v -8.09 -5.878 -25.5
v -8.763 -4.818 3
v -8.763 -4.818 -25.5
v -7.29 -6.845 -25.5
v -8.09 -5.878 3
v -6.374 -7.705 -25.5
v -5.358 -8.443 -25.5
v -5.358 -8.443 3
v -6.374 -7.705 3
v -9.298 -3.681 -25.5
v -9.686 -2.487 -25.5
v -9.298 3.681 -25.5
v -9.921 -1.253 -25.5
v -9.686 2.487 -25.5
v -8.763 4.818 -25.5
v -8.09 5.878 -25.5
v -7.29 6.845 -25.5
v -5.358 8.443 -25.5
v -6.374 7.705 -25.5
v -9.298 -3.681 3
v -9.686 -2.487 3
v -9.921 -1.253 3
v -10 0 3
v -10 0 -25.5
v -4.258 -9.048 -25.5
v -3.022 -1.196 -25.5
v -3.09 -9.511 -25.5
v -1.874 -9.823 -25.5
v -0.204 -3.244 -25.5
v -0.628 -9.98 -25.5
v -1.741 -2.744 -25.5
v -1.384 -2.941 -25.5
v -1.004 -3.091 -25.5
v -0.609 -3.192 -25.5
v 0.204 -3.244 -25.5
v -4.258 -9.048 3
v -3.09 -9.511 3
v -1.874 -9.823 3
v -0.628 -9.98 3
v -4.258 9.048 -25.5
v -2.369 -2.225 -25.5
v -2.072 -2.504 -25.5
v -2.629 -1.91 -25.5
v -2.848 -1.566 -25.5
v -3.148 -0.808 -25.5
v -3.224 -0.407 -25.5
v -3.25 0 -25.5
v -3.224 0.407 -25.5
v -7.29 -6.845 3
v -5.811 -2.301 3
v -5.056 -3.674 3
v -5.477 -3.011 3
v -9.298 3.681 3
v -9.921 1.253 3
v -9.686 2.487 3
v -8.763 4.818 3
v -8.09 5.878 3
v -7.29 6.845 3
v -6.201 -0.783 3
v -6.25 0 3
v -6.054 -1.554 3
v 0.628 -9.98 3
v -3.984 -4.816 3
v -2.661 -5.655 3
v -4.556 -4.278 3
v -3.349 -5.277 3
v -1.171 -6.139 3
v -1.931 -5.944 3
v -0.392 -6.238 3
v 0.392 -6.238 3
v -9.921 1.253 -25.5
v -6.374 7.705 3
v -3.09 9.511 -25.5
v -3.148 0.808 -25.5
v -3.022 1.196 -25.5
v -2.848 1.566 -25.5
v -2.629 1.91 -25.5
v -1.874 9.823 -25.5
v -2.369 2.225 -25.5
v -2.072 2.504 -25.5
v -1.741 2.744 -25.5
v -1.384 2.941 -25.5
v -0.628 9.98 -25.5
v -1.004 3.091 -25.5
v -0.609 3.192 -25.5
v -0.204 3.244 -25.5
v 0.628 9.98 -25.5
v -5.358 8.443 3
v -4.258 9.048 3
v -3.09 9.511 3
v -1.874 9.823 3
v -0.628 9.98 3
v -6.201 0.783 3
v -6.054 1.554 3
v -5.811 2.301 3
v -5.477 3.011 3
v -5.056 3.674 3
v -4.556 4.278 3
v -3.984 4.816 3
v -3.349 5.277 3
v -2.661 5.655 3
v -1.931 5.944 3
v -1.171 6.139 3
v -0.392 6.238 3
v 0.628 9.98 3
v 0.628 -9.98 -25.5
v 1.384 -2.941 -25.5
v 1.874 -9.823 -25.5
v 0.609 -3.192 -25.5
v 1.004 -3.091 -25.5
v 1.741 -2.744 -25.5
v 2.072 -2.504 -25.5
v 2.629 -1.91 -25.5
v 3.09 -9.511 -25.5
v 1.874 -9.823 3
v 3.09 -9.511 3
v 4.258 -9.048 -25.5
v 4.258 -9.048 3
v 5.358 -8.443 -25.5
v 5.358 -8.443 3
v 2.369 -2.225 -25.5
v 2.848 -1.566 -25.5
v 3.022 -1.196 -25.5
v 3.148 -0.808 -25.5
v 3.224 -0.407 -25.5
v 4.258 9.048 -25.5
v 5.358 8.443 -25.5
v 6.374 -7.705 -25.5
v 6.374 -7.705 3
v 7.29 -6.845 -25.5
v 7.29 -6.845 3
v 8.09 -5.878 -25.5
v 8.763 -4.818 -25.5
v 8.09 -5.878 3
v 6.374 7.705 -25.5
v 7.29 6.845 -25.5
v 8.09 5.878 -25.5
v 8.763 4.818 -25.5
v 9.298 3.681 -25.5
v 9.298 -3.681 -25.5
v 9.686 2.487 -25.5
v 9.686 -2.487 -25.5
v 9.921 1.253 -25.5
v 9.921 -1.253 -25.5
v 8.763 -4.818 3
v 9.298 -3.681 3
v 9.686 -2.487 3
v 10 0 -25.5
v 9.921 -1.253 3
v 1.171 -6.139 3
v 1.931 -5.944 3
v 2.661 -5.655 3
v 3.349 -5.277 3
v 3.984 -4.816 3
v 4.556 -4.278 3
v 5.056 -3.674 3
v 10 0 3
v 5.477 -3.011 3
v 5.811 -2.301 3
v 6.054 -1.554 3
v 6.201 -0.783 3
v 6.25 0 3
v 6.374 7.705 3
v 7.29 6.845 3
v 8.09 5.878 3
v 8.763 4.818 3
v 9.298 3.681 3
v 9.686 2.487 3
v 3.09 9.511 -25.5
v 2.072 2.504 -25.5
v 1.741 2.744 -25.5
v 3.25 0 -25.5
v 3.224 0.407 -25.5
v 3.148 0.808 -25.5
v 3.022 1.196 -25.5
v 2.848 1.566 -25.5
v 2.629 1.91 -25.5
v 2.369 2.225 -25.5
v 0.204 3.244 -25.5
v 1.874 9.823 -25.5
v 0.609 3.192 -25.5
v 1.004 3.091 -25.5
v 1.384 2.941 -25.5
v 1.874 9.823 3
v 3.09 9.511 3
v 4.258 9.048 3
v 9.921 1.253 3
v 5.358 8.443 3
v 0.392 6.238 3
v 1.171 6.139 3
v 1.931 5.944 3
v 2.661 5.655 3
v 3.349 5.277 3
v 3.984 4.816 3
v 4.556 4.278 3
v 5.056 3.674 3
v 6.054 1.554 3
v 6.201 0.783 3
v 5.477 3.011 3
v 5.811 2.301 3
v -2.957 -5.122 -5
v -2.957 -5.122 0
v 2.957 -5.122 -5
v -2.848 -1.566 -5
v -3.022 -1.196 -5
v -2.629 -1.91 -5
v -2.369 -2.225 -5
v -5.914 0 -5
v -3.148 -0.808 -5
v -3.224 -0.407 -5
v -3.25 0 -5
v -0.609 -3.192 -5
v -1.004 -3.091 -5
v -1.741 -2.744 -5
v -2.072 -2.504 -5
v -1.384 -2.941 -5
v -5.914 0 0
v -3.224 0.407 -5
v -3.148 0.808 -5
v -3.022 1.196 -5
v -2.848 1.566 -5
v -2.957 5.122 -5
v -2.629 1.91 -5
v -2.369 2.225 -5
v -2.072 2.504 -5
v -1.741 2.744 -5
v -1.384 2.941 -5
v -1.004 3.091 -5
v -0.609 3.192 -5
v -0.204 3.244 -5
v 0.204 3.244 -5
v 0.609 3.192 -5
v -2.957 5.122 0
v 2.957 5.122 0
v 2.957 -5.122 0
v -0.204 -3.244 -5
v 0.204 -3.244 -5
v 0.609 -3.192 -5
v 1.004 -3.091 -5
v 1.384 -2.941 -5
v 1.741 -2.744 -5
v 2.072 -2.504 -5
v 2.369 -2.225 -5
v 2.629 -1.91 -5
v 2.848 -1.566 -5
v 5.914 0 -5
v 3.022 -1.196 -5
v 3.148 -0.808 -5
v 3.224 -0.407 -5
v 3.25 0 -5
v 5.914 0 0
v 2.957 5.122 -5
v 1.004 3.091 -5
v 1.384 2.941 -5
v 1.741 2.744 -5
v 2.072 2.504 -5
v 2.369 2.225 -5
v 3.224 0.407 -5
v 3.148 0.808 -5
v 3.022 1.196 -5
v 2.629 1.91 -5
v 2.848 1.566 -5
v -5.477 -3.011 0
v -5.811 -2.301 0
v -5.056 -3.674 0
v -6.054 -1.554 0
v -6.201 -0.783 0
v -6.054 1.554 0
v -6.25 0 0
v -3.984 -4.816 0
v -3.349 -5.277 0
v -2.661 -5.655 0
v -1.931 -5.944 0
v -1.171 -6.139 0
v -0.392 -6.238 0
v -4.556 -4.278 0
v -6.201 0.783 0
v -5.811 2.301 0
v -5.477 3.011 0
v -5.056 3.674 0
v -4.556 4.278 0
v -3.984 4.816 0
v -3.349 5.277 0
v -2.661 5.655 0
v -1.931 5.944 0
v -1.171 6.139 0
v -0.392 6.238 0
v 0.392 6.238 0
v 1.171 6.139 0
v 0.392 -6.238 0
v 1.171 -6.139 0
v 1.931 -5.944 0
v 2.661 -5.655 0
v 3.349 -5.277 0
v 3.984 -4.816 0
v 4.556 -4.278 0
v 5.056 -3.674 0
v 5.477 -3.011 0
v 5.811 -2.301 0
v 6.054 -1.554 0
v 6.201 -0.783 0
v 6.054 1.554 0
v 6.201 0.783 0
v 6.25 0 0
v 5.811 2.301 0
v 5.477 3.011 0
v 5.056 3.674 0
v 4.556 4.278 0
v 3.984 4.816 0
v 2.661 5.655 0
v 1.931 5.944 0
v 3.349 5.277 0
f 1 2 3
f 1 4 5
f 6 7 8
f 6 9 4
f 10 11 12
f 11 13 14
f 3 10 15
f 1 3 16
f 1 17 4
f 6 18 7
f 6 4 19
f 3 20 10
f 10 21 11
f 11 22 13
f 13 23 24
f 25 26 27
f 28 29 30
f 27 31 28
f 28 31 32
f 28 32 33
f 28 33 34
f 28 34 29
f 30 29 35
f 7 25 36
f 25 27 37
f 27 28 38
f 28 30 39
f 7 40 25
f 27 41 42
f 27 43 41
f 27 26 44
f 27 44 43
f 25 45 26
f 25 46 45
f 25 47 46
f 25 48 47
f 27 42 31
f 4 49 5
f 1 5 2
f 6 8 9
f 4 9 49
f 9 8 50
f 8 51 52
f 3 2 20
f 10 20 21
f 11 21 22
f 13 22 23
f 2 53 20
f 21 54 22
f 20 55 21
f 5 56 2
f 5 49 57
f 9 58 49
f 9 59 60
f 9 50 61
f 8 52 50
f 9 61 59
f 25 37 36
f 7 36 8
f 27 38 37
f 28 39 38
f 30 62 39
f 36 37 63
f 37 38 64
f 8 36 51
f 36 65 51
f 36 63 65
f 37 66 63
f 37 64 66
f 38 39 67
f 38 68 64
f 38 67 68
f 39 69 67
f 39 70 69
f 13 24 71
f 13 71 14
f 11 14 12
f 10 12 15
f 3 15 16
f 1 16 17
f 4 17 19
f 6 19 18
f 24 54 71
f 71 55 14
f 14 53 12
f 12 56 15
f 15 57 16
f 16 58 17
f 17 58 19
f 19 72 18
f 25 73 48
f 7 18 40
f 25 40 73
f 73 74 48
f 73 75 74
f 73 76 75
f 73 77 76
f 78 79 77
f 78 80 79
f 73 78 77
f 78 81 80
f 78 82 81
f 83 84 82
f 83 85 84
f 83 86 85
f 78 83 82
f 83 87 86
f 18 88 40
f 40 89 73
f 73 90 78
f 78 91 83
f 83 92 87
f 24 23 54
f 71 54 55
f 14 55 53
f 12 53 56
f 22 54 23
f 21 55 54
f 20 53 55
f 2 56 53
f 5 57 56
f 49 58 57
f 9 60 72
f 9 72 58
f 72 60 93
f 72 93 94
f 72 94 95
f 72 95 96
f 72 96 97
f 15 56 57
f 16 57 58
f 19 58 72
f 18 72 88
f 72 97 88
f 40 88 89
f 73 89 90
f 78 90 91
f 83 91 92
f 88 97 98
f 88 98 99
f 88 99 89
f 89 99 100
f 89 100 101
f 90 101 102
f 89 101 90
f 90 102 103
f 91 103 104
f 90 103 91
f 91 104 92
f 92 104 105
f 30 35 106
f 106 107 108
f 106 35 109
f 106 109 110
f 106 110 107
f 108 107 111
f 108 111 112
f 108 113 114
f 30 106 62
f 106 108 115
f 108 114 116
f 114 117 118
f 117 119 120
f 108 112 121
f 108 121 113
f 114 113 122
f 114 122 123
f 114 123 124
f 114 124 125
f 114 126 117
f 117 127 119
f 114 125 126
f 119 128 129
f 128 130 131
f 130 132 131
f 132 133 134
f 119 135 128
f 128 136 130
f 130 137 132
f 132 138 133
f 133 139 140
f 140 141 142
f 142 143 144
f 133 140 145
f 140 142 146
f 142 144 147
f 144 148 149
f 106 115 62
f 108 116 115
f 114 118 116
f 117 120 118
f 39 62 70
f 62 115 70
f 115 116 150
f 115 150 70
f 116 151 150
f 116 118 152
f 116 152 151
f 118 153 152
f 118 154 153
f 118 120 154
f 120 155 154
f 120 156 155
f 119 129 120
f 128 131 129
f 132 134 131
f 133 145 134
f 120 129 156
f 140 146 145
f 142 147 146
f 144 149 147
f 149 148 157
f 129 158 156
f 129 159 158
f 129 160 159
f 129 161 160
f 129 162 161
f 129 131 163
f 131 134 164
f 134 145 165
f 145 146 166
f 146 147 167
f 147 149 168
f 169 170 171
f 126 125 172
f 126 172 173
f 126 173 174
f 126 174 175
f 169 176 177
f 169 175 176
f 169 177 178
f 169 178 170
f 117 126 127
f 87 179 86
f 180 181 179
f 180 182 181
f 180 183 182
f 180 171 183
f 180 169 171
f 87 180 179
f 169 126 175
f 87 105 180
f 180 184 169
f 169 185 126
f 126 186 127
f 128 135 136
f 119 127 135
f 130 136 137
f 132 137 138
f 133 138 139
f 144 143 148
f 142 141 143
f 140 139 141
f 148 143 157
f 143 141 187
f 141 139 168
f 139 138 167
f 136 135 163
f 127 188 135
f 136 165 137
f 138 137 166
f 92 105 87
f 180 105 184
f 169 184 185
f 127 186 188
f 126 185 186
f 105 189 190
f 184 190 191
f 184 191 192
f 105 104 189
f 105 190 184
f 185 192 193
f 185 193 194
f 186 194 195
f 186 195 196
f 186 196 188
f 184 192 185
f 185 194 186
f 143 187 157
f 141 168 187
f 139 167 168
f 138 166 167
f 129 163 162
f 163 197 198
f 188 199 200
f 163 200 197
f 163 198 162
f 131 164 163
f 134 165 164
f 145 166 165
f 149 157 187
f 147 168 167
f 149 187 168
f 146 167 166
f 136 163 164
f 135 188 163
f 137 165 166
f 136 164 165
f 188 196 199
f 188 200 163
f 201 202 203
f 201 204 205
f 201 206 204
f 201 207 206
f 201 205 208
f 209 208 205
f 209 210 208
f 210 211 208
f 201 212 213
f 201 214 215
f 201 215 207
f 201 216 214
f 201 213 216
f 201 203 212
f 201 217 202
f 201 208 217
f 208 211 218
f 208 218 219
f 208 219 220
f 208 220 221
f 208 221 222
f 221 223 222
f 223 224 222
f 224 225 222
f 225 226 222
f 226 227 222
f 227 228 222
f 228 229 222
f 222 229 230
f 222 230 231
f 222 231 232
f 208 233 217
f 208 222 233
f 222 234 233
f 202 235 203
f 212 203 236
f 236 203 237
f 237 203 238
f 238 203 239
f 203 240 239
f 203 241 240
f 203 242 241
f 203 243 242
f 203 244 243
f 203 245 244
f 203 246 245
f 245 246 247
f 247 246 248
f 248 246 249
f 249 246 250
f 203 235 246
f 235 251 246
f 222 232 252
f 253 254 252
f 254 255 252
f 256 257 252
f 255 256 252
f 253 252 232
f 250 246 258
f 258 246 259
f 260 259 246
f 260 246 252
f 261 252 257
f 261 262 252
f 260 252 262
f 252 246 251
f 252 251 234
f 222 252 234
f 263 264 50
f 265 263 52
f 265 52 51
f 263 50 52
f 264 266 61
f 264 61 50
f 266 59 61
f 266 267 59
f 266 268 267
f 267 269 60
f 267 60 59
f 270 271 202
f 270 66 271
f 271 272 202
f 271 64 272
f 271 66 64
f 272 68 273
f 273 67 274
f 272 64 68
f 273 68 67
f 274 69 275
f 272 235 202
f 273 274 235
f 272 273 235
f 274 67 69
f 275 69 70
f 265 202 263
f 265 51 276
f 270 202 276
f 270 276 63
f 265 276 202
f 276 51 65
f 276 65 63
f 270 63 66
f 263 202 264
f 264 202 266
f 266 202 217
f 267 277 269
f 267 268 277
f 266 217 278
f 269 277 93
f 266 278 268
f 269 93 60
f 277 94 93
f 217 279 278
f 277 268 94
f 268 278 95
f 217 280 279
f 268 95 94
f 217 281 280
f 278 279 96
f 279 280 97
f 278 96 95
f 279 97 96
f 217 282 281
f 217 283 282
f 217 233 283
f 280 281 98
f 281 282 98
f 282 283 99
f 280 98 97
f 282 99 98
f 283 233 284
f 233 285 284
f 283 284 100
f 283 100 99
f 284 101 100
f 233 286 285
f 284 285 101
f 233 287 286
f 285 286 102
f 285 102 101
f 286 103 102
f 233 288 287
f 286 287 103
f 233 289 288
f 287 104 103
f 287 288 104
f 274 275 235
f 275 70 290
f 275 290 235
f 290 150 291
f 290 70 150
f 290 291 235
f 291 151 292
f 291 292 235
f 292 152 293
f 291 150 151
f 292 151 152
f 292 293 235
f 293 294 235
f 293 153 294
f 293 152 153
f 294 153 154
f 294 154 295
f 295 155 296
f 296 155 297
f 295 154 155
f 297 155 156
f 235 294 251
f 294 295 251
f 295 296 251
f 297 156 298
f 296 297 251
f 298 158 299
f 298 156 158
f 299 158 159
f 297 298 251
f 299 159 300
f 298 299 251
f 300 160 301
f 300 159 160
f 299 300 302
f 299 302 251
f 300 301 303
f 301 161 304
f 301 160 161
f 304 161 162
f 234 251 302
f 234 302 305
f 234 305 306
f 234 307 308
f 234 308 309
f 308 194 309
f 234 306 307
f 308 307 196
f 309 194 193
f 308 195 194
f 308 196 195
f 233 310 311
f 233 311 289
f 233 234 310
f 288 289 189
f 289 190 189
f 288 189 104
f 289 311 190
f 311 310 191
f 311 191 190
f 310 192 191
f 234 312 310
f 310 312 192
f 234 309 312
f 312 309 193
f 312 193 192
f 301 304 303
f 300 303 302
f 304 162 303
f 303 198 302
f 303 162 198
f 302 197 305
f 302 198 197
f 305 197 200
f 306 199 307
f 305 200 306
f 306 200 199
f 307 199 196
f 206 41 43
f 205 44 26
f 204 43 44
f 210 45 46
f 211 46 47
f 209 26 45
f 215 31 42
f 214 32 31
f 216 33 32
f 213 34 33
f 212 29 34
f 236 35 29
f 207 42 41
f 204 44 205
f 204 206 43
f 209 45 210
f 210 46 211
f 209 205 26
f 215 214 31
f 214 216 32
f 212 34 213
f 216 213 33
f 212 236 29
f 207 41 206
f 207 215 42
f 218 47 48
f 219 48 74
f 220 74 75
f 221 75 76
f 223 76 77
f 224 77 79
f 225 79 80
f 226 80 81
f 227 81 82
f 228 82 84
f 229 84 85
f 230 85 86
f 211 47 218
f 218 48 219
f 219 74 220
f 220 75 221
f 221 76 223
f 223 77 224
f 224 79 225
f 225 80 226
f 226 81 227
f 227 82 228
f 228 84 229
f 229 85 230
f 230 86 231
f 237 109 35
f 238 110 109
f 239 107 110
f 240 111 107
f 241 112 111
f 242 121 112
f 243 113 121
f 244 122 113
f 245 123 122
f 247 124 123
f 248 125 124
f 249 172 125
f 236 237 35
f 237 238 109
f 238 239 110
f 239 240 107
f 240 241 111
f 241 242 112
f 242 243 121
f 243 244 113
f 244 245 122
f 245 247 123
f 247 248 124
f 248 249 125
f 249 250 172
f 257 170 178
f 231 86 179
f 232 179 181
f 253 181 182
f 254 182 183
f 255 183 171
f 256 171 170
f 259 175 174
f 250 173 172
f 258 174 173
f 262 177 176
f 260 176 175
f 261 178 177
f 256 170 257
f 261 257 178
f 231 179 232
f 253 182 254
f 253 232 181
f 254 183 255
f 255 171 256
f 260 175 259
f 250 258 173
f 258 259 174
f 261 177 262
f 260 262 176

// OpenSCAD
$fn = 50;

difference() {
	union() {
		translate(v = [0, 0, -25.5]) {
			cylinder(h = 28.5, r = 10.0);
		}
		#translate(v = [0, 0, -27.0]) {
			cylinder(h = 27, r = 2.875);
		}
	}
	union() {
		translate(v = [0, 0, 0]) {
			rotate(a = [0, 0, 0]) {
				difference() {
					union() {
						translate(v = [0, 0, -5]) {
							linear_extrude(height = 5) {
								polygon(points = [[5.914249999999999, 0.0], [2.957125, 5.1218907443321156], [-2.9571249999999982, 5.1218907443321156], [-5.914249999999999, 7.242867331857232e-16], [-2.9571250000000022, -5.121890744332115], [2.9571249999999956, -5.121890744332118]]);
							}
						}
					}
					union();
				}
			}
		}
		#cylinder(h = 3, r = 6.25);
		#translate(v = [0, 0, -100.0]) {
			cylinder(h = 200, r = 3.25);
		}
	}
}
